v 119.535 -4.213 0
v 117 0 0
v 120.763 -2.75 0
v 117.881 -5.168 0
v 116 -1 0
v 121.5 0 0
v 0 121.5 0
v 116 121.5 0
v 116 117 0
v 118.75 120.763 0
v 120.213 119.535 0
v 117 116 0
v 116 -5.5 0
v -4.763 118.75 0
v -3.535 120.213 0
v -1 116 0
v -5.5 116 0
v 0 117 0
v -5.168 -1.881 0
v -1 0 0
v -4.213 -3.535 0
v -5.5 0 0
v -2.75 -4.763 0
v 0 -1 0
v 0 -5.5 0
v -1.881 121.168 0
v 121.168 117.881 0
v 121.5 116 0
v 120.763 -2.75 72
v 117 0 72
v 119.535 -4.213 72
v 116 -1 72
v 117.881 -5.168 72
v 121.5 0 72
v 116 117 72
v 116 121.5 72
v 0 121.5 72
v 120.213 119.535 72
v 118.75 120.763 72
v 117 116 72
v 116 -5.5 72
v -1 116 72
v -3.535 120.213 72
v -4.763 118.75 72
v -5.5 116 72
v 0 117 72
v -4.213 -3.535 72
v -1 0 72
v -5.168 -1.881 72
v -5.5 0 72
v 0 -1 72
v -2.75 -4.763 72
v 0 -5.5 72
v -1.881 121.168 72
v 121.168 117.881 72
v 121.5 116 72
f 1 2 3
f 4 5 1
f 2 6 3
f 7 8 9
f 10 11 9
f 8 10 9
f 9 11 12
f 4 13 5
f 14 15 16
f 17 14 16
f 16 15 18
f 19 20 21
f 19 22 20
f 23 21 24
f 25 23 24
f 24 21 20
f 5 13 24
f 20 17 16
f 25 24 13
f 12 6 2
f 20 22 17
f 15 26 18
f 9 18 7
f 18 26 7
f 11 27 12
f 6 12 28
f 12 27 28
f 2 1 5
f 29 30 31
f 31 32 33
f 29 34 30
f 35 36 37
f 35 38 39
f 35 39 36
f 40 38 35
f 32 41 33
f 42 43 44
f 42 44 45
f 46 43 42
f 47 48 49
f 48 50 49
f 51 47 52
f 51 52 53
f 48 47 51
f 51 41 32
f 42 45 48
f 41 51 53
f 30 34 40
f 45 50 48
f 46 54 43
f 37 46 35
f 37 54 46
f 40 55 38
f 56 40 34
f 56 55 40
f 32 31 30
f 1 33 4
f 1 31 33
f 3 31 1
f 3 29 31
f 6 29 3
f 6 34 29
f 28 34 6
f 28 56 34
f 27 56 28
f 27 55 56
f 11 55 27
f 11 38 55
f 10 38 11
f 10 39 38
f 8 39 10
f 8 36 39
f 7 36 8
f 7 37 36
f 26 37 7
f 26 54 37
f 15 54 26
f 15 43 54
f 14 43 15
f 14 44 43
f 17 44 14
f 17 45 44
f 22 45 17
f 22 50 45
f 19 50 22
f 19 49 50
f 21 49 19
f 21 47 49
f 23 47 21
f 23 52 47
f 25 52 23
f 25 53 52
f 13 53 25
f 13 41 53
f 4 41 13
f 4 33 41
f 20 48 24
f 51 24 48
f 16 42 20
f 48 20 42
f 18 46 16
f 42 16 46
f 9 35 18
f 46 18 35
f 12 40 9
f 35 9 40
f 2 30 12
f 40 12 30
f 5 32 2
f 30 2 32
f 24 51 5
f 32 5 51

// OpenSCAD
linear_extrude(10*3+30+10+2)
difference(){
offset(5.5)
square([126-10,126-10]);
offset(1)
square([126-10,126-10]);
}
